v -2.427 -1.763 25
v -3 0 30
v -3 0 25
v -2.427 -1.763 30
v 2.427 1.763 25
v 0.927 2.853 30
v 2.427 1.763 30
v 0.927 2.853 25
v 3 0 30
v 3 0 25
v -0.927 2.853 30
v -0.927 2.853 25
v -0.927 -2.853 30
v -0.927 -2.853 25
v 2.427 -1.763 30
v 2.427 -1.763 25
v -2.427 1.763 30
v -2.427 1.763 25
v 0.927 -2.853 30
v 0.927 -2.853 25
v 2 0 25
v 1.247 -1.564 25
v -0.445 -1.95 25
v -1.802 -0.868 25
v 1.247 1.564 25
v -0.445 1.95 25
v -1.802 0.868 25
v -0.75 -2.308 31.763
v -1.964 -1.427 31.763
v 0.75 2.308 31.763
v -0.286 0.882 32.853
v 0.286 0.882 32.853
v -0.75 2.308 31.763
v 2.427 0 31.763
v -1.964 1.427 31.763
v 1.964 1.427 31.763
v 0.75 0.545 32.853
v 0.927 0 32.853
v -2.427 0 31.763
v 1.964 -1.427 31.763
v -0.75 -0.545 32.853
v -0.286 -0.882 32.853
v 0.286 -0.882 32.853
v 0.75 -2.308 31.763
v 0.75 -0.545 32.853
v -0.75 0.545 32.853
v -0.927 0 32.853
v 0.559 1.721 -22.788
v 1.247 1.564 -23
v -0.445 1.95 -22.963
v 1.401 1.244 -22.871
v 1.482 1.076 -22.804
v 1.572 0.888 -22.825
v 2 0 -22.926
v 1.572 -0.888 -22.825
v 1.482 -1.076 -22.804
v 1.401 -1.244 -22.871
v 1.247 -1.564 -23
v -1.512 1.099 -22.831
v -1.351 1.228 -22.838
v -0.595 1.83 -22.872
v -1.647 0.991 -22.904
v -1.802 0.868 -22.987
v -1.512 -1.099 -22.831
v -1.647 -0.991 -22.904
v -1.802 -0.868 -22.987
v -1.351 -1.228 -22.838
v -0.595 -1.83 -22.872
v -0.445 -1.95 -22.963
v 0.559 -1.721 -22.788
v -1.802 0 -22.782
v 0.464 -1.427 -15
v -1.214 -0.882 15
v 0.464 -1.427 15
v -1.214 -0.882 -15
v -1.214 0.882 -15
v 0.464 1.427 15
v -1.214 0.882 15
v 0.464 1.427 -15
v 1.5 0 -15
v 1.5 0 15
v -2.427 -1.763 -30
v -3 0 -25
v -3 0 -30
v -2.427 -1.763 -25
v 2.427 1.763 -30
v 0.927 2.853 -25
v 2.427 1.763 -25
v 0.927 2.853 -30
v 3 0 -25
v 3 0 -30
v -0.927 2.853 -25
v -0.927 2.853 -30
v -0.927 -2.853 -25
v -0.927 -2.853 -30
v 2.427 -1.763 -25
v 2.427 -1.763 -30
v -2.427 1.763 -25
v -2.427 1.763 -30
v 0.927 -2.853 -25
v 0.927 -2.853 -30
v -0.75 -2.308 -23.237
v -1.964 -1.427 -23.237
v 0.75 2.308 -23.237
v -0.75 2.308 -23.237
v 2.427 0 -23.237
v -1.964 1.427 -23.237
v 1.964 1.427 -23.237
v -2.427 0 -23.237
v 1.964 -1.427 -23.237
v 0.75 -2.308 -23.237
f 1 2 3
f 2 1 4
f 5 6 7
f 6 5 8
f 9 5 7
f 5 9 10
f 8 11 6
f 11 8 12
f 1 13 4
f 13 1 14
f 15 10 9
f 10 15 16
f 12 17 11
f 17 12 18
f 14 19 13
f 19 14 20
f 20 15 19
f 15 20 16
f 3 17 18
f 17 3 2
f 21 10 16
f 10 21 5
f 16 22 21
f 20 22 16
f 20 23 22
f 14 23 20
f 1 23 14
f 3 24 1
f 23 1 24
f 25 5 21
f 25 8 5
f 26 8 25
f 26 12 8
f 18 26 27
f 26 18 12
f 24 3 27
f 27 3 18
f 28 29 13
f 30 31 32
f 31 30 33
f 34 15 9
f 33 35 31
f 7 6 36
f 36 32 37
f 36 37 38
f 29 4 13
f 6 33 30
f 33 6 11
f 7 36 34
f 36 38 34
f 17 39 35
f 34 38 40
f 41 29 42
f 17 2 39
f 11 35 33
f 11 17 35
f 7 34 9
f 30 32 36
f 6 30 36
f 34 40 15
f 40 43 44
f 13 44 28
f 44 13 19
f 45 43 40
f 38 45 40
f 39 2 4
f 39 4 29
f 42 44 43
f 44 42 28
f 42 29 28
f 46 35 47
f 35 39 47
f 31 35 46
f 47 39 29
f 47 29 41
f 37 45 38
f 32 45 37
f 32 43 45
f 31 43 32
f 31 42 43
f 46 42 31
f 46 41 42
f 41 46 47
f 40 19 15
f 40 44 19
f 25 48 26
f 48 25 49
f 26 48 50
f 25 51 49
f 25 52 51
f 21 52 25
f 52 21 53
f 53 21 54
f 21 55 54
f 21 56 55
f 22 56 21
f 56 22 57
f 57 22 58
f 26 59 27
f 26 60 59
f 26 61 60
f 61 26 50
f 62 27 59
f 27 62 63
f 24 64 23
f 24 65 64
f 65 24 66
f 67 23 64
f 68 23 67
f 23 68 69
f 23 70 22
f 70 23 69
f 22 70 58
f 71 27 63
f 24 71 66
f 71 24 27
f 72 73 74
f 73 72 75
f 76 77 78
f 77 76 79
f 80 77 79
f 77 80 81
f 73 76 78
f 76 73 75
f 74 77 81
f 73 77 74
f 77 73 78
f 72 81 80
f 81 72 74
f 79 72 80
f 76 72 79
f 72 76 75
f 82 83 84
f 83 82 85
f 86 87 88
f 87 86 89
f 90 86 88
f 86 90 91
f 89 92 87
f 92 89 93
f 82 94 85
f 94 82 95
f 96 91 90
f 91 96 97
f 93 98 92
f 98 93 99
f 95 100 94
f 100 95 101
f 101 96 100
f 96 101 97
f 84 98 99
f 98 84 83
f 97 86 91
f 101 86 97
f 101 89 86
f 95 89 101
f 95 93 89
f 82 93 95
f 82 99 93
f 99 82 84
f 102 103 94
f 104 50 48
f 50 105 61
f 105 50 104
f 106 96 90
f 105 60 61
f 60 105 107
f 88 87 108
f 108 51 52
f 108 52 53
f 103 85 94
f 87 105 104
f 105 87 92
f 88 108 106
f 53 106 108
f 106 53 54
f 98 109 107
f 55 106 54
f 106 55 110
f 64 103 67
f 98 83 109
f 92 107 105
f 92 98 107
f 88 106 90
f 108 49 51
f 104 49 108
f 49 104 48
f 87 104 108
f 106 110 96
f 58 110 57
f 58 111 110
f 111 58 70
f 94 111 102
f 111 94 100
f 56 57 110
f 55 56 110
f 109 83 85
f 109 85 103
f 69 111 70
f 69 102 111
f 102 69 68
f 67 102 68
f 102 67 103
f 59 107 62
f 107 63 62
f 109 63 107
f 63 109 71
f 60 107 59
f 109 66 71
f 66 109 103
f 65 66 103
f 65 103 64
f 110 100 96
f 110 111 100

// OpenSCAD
// Parameters for the rod
rod_length = 50; // Length of the rod
rod_radius = 2;  // Radius of the rod
taper_radius = 1.5; // Radius at the tapered middle section
taper_length = 10; // Length of the tapered section

// Parameters for the end caps
end_cap_radius = 3; // Radius of the end cap
end_cap_height = 5; // Height of the end cap

// Function to create a tapered rod
module tapered_rod() {
    difference() {
        // Main rod
        cylinder(h = rod_length, r1 = rod_radius, r2 = rod_radius, center = true);
        // Tapered section
        translate([0, 0, -rod_length / 2 + taper_length])
            cylinder(h = rod_length - 2 * taper_length, r1 = taper_radius, r2 = taper_radius, center = false);
    }
}

// Function to create an end cap
module end_cap() {
    union() {
        // Cylindrical base
        cylinder(h = end_cap_height, r = end_cap_radius, center = false);
        // Rounded dome
        translate([0, 0, end_cap_height])
            sphere(r = end_cap_radius);
    }
}

// Assemble the model
module flexible_coupling() {
    // Top end cap
    translate([0, 0, rod_length / 2])
        end_cap();
    // Rod
    tapered_rod();
    // Bottom end cap
    translate([0, 0, -rod_length / 2 - end_cap_height])
        end_cap();
}

// Render the flexible coupling
flexible_coupling();
